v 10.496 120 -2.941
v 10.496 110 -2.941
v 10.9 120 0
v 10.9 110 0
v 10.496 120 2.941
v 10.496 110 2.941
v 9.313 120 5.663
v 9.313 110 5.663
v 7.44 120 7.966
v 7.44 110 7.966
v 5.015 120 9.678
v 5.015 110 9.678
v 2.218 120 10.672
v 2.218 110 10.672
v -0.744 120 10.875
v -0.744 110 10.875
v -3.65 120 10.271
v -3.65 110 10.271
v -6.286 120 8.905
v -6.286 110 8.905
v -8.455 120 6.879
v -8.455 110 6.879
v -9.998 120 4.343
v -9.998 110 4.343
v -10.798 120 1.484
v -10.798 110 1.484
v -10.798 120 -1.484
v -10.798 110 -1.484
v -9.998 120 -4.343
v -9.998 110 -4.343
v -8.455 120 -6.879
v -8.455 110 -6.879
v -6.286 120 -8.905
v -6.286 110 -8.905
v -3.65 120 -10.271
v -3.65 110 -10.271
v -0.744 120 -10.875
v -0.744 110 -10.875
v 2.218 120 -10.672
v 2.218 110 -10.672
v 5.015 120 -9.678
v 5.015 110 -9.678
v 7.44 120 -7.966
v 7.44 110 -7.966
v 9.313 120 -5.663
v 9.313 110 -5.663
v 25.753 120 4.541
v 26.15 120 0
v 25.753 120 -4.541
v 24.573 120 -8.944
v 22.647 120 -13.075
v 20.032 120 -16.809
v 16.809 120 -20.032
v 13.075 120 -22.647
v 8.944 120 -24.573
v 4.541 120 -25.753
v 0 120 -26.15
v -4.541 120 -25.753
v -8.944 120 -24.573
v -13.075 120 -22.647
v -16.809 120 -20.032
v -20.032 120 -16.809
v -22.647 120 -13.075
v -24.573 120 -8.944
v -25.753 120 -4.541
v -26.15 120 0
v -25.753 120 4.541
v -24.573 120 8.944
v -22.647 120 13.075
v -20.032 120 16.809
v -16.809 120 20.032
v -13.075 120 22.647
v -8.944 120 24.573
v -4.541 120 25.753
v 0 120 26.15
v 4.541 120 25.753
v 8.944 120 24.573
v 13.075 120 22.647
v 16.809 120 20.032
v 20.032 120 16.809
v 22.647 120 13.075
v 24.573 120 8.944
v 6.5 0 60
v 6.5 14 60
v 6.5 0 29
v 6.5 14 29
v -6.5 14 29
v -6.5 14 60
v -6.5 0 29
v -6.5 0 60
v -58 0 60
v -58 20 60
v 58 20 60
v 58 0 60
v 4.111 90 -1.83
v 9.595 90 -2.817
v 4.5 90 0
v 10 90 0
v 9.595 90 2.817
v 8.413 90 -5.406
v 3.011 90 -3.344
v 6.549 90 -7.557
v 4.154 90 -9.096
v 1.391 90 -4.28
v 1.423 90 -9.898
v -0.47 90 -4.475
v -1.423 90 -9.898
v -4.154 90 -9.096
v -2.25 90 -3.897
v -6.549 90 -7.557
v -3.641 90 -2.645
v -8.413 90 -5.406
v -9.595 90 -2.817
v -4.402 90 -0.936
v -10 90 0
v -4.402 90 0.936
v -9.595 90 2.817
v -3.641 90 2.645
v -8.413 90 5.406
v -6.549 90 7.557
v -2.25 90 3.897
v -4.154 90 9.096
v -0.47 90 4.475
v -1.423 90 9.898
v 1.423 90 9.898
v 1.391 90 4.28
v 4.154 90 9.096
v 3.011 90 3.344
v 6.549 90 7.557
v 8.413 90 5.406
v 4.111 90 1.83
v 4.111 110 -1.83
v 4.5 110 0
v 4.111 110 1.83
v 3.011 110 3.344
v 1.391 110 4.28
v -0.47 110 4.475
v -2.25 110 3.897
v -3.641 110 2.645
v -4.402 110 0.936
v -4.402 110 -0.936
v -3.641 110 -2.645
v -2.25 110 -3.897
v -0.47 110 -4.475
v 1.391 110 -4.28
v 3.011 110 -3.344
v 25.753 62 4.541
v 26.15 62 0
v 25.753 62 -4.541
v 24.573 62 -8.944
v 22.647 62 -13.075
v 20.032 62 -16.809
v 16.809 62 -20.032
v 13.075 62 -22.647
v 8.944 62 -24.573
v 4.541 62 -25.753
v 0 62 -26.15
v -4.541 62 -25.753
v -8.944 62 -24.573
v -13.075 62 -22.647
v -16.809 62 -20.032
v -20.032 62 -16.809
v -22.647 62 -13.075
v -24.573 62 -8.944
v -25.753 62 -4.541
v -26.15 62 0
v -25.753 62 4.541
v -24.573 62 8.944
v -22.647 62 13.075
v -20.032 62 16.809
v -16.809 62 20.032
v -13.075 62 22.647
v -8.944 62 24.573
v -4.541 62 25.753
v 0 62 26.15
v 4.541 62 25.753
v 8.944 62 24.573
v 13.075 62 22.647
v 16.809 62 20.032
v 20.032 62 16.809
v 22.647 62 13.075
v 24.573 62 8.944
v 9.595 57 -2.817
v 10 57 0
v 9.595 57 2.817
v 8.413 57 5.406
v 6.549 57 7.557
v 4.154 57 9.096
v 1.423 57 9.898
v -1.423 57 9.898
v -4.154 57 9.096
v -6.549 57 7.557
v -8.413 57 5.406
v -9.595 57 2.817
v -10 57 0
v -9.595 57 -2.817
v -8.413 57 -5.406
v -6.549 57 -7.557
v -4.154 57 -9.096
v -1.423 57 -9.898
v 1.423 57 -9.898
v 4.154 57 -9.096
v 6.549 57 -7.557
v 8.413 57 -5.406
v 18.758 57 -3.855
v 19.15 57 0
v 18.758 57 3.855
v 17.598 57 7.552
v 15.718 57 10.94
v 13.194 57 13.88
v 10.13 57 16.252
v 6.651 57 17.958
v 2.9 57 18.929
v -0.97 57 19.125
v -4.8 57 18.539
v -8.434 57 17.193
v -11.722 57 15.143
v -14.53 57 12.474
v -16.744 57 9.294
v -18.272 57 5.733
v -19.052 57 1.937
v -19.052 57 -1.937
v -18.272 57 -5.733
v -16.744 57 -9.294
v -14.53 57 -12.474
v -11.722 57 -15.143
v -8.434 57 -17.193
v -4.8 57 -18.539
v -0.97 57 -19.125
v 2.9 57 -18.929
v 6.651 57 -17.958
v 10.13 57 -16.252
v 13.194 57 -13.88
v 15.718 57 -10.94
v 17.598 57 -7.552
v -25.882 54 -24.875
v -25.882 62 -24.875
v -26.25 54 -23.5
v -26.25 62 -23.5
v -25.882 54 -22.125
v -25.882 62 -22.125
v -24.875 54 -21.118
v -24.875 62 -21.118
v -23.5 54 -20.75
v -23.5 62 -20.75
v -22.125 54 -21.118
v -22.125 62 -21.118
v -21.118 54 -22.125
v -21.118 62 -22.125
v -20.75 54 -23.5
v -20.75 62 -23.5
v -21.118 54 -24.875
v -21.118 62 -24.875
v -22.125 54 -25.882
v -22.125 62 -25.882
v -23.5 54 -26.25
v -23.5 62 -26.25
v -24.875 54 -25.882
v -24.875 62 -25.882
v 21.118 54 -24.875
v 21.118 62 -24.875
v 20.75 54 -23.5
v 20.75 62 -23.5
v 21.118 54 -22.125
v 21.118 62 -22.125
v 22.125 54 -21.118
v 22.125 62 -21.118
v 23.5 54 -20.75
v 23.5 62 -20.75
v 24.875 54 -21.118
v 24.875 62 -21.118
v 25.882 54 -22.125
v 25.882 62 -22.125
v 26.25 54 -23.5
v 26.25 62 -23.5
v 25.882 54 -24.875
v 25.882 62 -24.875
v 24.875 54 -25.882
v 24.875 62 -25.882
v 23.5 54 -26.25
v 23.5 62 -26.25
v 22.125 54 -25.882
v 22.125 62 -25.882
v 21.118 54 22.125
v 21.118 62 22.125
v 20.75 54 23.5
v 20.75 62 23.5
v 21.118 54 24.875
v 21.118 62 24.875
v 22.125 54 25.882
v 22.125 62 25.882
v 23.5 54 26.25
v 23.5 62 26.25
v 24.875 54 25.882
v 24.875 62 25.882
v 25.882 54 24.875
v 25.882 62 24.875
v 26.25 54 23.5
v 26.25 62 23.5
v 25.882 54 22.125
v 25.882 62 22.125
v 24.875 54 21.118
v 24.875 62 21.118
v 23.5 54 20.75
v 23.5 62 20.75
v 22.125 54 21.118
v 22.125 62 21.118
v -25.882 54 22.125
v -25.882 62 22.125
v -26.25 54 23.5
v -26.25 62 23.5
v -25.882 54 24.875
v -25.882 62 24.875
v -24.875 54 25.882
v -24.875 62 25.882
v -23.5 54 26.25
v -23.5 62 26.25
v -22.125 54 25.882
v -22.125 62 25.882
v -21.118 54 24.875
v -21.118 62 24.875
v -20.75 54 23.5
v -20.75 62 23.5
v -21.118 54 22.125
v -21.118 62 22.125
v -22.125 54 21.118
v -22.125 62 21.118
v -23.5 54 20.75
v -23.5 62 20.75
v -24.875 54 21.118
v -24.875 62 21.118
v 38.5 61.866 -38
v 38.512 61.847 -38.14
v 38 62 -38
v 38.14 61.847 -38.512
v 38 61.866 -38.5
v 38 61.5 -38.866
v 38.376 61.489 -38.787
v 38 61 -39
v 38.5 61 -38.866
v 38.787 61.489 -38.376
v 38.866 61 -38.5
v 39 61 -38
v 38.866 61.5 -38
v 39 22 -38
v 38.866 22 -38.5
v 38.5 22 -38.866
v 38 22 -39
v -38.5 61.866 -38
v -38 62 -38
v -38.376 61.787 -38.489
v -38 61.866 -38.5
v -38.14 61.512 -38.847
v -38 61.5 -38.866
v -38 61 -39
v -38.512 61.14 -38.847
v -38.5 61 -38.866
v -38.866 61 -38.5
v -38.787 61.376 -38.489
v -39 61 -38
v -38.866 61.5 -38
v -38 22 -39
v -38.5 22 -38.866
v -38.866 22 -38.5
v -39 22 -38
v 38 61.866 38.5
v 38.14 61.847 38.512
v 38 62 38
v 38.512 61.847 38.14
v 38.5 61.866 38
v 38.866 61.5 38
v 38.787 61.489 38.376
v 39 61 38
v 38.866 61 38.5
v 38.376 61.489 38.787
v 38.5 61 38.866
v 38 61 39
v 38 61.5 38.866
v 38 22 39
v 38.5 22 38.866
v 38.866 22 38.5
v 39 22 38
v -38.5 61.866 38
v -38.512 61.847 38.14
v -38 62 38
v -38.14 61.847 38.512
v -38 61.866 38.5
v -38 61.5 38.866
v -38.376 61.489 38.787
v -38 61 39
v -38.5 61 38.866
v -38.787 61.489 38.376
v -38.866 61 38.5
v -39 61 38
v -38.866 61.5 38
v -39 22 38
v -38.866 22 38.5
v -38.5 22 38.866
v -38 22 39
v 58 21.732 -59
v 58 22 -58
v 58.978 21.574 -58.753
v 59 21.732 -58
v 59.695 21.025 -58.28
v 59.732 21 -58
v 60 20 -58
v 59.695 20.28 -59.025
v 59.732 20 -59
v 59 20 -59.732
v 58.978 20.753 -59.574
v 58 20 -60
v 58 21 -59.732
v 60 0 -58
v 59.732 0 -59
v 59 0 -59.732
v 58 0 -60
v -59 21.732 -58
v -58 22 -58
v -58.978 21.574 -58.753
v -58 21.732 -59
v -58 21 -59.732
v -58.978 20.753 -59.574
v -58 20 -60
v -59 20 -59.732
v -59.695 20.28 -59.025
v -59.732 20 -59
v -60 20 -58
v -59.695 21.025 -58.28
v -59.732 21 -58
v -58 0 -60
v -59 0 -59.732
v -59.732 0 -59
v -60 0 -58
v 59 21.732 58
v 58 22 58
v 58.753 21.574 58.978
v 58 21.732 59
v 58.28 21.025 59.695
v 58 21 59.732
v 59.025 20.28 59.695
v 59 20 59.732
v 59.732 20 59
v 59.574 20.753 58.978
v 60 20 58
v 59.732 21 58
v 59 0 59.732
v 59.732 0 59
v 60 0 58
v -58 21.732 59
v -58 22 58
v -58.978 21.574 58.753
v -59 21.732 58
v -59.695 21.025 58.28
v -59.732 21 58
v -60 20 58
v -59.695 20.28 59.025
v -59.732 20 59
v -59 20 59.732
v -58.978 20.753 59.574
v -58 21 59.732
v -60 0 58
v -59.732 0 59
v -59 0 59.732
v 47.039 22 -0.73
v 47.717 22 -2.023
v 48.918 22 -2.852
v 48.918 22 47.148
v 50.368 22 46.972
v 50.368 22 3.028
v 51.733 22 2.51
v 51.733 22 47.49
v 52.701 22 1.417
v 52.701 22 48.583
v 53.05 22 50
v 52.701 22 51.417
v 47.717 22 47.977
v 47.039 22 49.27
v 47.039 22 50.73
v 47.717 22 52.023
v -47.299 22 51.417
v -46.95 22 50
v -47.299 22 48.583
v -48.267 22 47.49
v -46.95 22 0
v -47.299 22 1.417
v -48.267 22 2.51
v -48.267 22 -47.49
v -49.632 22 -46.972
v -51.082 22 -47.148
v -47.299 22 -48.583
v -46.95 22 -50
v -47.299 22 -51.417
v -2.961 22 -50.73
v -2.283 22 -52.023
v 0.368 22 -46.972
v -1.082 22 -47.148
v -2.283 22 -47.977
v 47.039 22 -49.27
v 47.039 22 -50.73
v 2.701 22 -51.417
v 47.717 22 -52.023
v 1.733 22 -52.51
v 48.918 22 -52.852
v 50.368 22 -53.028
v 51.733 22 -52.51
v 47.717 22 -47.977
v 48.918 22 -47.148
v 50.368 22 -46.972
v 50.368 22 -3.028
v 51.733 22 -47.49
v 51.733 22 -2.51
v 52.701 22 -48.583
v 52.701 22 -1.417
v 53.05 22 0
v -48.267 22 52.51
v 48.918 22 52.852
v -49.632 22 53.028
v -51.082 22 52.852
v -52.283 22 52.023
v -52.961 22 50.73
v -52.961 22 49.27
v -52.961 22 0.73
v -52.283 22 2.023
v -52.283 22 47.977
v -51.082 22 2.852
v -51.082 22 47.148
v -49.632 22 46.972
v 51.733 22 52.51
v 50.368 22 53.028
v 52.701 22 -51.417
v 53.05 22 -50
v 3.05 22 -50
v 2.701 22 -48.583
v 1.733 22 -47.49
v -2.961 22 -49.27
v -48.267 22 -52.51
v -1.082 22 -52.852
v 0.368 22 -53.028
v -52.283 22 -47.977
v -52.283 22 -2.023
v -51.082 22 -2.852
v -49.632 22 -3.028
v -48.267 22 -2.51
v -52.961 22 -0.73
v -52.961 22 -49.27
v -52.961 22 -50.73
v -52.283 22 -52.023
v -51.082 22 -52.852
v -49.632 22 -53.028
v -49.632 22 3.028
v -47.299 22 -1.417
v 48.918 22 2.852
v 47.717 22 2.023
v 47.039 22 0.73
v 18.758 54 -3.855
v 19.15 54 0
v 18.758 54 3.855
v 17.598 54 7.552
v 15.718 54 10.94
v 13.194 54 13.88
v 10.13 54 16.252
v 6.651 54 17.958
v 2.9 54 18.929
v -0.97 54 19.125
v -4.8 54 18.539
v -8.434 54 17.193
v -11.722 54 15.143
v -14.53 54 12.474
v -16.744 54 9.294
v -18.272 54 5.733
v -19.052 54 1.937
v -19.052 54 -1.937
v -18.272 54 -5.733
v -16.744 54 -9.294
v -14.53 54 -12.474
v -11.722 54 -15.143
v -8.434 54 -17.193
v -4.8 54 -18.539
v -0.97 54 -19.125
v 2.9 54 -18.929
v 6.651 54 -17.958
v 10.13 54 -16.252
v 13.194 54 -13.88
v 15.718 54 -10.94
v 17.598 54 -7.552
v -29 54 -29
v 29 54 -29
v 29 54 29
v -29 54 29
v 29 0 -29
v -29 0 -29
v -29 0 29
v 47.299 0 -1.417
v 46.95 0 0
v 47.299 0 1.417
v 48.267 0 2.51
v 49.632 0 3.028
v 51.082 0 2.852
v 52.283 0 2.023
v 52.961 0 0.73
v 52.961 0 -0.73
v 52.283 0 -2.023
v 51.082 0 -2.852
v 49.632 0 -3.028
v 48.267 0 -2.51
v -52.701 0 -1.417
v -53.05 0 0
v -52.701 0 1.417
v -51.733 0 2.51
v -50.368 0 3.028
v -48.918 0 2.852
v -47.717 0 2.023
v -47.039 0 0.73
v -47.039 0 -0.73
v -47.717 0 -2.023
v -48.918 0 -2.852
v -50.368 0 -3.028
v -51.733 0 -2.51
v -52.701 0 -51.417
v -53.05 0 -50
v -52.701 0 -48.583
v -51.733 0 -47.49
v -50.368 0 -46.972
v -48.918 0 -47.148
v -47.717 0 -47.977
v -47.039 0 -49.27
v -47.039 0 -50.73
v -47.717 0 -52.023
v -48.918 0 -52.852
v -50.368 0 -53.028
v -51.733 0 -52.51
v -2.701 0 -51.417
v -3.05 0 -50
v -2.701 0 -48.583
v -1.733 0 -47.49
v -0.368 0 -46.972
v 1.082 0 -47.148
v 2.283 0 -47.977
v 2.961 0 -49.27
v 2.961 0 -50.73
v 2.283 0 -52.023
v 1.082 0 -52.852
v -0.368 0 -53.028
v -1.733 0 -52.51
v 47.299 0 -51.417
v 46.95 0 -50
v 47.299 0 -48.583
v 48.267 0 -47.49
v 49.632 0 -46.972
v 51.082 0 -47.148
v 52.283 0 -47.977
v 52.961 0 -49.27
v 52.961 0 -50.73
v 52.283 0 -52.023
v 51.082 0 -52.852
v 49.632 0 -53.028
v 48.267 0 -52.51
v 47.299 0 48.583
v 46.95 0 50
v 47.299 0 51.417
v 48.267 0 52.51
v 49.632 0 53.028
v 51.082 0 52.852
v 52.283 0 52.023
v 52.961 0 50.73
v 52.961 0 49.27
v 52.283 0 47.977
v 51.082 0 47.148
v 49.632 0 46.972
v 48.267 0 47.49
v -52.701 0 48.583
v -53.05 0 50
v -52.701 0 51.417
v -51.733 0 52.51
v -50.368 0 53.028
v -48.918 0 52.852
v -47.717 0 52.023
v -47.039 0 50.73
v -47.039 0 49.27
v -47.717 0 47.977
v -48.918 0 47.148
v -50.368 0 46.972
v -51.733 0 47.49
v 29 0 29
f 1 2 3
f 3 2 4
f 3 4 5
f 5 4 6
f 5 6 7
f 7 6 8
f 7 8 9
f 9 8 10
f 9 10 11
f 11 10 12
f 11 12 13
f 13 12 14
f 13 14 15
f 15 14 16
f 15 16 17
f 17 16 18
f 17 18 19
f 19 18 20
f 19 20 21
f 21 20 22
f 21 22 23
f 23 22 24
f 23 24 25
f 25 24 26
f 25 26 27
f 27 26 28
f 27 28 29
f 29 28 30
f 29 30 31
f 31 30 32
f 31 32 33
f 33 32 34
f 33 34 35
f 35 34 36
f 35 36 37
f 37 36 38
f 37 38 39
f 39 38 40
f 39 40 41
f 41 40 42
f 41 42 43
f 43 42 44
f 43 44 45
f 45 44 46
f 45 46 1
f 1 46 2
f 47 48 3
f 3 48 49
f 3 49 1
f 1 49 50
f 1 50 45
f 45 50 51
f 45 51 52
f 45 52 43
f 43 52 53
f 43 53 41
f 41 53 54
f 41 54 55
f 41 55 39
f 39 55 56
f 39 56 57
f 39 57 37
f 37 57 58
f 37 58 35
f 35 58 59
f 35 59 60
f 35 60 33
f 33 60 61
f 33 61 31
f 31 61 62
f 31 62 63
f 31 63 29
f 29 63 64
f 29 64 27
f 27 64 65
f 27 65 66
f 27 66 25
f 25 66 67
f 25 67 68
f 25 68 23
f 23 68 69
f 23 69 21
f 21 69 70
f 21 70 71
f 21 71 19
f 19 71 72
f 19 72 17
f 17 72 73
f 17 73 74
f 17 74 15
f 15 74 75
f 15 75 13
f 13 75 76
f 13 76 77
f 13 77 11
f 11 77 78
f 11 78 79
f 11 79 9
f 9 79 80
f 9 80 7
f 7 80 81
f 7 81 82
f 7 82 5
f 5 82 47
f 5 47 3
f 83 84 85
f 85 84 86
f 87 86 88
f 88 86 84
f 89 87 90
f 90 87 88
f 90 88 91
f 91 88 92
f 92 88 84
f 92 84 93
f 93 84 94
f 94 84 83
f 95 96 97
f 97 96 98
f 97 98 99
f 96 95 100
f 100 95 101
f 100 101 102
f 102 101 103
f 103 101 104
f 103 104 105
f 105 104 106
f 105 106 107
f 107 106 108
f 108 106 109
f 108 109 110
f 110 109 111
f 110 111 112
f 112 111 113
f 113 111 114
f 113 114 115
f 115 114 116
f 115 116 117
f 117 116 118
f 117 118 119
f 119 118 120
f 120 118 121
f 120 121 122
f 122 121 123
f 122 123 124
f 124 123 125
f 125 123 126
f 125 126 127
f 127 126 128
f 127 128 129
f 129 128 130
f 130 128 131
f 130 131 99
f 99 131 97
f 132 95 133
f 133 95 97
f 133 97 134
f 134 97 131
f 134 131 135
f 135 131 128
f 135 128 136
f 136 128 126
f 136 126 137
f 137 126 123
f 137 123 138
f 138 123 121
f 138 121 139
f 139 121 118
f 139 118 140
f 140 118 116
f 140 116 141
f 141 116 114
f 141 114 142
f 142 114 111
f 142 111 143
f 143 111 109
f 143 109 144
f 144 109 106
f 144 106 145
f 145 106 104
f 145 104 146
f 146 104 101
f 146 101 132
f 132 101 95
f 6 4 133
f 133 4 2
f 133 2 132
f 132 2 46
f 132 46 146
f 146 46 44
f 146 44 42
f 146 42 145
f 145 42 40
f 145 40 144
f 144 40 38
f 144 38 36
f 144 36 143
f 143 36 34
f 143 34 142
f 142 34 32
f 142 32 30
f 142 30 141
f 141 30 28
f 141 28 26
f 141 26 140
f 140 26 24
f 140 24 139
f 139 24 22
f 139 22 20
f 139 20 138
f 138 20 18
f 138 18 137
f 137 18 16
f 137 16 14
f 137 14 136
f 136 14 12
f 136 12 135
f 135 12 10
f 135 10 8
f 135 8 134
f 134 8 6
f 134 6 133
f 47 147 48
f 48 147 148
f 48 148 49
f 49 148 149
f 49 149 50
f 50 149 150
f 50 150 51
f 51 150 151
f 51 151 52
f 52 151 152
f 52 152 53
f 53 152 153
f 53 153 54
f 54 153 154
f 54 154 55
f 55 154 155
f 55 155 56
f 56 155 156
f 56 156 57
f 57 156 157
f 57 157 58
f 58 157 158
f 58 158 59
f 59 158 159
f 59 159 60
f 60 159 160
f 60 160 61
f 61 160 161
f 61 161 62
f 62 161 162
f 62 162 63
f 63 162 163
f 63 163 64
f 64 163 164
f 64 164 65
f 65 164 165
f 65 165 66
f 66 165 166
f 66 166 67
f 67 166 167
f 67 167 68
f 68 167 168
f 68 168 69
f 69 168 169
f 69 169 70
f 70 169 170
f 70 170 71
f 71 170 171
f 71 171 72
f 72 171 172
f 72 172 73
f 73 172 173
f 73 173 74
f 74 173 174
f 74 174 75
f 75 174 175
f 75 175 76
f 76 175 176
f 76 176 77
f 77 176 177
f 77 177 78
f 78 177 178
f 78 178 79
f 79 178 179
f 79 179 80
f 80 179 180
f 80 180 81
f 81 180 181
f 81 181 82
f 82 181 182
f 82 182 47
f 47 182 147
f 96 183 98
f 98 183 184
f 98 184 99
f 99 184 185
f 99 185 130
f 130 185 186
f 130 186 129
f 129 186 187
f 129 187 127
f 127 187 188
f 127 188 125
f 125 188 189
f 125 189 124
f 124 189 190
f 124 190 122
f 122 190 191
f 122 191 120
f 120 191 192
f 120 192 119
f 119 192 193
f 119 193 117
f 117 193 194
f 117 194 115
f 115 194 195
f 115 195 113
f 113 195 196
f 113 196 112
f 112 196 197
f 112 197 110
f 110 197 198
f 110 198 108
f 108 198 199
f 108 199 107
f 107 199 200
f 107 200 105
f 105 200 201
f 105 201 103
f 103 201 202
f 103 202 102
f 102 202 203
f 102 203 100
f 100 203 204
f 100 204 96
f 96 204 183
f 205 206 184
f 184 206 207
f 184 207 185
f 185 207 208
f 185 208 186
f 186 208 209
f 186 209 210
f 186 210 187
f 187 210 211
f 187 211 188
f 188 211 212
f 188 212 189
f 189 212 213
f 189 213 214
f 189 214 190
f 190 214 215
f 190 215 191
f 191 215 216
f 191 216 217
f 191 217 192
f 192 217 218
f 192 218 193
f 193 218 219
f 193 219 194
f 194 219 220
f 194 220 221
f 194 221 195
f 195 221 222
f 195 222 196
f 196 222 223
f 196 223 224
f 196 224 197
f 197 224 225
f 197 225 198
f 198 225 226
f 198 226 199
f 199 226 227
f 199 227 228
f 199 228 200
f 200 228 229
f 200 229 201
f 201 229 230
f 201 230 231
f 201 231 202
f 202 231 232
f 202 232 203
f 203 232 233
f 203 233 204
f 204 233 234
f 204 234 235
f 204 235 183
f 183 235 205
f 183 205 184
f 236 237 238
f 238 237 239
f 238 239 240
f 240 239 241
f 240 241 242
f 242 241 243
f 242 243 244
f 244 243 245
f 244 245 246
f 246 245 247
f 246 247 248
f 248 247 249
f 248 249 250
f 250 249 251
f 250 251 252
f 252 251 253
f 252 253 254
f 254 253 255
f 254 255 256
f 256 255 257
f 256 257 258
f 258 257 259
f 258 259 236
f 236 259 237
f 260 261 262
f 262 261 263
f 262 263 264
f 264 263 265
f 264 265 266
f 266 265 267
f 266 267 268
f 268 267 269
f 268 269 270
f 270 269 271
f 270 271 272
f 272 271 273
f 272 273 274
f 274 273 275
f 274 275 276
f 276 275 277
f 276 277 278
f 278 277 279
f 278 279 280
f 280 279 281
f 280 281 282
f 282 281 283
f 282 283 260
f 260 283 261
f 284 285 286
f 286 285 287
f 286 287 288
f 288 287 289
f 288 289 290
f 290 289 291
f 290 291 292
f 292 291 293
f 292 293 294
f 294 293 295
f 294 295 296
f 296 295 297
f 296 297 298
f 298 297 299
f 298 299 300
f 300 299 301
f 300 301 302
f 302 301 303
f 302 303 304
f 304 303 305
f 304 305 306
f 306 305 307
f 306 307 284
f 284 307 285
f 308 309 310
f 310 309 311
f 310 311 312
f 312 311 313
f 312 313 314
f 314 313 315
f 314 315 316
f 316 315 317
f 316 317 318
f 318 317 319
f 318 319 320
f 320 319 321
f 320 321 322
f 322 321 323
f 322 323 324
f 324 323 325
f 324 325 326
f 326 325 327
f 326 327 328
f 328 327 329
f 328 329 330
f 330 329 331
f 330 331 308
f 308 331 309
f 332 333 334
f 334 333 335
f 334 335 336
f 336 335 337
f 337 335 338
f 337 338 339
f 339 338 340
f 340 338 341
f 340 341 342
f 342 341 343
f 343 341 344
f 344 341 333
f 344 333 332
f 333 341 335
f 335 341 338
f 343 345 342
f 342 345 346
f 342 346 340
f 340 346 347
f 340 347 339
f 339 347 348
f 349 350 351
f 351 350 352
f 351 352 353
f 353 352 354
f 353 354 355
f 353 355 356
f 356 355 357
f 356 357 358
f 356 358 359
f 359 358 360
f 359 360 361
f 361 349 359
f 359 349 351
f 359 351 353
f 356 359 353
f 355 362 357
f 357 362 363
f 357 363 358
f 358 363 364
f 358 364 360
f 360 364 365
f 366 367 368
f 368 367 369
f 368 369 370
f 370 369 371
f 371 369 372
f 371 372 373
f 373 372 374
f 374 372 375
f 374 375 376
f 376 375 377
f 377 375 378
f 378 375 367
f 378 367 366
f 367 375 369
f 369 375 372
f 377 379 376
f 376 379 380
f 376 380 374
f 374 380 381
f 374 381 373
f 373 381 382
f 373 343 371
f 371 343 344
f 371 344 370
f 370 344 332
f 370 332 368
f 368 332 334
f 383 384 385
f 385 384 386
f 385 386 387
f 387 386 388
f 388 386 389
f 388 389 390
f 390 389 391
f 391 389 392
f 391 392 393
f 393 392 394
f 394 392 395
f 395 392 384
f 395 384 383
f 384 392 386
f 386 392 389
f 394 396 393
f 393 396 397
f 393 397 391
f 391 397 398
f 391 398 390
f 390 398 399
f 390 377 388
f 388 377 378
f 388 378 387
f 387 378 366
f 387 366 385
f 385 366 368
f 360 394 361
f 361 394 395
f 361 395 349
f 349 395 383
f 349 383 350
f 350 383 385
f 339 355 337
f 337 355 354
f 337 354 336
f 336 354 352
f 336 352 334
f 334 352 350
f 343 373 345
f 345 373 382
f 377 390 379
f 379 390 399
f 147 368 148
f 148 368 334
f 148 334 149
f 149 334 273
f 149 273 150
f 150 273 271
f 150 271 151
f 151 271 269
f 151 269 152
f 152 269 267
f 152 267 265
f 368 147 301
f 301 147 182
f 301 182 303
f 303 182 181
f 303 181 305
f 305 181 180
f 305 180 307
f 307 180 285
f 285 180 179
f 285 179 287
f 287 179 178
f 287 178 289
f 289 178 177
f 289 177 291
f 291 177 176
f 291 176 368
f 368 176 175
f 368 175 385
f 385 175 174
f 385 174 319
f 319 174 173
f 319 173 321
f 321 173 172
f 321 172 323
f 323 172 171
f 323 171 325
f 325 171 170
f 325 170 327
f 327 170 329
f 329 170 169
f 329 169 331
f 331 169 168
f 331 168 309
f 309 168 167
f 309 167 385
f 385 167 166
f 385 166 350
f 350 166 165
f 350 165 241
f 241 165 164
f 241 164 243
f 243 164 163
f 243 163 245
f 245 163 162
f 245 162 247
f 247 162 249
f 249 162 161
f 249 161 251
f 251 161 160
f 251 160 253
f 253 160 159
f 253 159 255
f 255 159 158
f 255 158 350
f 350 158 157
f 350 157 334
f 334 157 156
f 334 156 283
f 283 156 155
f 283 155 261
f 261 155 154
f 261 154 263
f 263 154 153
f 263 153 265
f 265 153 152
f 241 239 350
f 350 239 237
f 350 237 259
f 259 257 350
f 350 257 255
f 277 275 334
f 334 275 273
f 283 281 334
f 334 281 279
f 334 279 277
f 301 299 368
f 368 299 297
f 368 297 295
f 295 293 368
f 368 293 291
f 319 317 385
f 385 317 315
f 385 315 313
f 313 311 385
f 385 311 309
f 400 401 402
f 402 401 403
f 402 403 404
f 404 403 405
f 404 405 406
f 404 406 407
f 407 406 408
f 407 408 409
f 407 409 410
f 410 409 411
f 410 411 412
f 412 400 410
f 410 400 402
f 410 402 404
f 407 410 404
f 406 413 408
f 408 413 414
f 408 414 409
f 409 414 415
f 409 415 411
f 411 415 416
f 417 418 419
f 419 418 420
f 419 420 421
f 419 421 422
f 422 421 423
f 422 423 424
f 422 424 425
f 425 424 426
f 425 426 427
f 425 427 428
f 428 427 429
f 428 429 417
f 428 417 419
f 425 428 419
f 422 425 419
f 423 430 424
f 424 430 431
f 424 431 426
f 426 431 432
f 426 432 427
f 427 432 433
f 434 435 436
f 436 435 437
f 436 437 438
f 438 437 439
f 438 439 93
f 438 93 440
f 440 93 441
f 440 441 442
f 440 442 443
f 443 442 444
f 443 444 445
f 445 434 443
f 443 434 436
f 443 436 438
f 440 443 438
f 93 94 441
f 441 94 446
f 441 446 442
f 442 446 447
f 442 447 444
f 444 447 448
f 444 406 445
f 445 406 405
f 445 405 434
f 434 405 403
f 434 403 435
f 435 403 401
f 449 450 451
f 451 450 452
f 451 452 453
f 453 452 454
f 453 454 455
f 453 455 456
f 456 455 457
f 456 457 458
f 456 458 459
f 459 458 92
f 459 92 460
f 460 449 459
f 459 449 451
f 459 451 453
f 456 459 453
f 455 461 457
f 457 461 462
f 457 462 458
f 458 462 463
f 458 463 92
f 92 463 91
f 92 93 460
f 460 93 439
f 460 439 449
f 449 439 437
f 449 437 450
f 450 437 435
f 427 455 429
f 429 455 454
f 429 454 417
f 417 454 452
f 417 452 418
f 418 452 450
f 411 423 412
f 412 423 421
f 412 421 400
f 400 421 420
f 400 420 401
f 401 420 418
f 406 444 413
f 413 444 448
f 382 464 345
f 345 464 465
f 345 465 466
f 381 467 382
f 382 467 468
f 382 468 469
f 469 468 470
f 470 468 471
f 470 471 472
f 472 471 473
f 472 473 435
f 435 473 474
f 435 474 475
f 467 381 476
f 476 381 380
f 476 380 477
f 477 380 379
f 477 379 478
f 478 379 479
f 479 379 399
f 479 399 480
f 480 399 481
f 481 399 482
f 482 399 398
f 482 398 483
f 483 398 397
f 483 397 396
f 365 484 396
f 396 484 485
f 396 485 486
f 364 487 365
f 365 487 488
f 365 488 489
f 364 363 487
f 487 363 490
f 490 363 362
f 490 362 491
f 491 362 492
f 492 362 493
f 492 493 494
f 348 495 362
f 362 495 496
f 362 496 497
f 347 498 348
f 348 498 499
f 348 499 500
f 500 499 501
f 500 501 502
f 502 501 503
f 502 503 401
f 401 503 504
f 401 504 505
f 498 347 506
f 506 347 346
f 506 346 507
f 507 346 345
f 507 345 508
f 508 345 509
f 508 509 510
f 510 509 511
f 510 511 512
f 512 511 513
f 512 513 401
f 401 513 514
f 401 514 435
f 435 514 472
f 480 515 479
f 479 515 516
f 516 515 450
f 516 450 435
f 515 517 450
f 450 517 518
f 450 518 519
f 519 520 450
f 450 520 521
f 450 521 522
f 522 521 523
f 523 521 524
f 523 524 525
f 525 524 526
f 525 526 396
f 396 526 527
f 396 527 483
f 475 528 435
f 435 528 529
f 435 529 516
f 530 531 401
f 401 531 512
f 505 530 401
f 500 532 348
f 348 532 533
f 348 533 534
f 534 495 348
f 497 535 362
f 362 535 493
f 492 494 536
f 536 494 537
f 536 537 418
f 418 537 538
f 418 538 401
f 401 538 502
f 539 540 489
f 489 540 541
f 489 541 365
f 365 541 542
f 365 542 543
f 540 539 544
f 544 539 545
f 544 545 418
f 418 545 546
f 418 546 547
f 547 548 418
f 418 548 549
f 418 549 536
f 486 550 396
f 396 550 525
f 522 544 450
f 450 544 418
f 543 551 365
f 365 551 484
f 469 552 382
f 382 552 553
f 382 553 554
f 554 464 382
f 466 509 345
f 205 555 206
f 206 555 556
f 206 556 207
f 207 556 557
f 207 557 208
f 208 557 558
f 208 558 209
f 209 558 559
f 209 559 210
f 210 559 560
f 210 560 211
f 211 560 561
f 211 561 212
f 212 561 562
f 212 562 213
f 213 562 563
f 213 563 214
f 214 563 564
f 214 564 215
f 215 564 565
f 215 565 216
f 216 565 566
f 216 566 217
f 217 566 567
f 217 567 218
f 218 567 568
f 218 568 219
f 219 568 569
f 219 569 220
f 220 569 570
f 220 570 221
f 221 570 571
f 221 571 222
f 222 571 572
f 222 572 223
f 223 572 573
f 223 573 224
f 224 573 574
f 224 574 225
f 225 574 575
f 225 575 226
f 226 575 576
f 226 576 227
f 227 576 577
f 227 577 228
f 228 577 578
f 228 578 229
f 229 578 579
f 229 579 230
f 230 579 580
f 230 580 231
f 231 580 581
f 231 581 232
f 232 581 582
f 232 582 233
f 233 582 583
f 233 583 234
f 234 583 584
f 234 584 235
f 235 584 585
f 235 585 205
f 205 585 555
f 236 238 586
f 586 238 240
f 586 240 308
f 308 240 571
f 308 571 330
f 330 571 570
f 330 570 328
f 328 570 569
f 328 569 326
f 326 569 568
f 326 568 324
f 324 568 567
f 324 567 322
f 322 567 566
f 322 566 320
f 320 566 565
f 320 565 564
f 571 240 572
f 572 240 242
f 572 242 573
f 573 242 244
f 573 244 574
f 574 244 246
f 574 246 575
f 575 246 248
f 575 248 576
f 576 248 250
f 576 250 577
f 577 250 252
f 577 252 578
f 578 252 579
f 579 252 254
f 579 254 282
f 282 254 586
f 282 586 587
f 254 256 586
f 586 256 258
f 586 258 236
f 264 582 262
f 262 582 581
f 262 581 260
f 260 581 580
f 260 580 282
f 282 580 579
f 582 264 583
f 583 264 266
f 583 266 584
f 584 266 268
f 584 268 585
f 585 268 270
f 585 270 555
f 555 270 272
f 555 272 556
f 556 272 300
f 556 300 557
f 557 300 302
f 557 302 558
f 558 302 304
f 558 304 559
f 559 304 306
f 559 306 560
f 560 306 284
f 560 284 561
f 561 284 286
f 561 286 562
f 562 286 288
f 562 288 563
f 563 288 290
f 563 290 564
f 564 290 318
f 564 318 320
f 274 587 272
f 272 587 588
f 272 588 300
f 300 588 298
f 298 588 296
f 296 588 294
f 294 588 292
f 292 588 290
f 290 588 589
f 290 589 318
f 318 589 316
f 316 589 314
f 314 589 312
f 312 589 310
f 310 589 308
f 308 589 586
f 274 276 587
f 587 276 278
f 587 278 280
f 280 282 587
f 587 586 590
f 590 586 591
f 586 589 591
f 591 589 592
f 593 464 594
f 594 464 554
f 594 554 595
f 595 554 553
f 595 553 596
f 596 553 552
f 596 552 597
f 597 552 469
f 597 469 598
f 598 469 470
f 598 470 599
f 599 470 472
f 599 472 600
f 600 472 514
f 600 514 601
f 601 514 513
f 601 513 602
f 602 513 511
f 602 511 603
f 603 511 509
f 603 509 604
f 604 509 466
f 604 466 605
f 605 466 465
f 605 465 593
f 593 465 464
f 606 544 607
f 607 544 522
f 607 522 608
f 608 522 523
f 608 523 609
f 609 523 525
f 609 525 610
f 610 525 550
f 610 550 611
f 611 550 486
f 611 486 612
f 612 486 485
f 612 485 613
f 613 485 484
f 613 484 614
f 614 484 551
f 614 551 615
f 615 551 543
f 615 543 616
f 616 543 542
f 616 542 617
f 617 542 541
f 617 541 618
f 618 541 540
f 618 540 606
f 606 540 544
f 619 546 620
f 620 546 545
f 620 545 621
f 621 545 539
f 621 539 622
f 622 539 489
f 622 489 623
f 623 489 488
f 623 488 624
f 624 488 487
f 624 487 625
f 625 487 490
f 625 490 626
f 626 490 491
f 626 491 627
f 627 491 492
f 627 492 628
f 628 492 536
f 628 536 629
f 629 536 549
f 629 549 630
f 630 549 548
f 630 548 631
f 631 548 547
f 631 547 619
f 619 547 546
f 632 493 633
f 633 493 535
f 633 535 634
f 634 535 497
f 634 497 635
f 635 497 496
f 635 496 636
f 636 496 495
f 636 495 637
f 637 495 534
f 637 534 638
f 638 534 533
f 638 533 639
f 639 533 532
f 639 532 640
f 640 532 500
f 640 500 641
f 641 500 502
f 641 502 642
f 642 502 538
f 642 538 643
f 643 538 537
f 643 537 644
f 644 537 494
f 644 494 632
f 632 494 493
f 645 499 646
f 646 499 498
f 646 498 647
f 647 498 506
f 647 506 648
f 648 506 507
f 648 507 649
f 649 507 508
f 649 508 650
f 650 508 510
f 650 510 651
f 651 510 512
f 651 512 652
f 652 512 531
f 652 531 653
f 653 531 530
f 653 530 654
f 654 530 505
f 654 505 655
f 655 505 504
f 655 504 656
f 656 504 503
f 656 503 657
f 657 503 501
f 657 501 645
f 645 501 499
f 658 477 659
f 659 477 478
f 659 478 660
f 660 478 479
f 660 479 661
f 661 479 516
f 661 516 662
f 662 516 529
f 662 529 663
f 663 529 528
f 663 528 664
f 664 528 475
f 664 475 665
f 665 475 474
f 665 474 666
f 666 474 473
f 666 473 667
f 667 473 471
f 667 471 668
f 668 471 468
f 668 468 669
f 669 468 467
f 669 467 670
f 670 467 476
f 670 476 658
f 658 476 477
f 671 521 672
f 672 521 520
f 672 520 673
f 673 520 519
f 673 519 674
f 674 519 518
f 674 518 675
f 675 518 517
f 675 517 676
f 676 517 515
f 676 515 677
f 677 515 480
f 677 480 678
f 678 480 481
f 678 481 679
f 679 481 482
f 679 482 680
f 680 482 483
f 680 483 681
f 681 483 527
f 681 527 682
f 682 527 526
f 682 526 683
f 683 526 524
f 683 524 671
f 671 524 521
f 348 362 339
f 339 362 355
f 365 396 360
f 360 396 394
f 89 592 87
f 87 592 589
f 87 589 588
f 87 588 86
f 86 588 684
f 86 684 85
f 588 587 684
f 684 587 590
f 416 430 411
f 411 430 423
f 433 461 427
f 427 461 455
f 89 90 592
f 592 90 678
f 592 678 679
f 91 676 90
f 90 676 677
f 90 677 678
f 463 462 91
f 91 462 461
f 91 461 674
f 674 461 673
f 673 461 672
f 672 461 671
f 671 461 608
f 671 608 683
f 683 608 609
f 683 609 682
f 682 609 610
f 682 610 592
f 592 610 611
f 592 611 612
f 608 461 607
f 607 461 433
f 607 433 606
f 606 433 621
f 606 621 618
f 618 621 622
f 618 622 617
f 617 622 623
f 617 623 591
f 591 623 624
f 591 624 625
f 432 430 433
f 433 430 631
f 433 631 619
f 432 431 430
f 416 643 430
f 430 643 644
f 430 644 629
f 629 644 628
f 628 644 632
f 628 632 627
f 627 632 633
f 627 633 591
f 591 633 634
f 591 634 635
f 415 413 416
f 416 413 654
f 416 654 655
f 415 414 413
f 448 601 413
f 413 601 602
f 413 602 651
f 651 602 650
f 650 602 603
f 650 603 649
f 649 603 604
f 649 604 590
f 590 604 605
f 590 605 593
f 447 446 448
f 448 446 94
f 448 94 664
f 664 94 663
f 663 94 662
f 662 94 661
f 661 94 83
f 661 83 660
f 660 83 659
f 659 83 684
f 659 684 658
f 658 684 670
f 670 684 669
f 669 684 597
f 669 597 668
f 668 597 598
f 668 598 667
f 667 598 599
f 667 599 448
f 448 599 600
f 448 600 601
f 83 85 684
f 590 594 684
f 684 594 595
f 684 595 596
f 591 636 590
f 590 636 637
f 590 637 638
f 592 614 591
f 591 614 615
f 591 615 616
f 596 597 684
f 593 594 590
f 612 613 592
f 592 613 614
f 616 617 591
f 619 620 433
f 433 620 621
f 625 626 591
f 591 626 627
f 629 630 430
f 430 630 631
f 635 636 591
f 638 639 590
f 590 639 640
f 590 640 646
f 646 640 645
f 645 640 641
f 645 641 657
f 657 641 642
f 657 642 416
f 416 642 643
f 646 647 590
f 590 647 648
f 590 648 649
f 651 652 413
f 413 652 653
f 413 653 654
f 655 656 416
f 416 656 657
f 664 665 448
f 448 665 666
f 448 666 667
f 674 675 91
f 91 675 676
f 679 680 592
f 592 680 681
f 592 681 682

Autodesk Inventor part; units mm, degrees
ref_plane "YZ Plane" through (0, 0, 0) normal (1, 0, 0) x (0, 1, 0)
ref_plane "XY Plane" through (0, 0, 0) normal (0, 0, 1) x (1, 0, 0)
sketch "Sketch1" plane through (0, 0, 0) normal (0, 1, 0) x (-1, 0, 0)
  line L0 (-60, -60) -> (60, -60)
  line L1 (60, -60) -> (60, 60)
  line L2 (60, 60) -> (-60, 60)
  line L3 (-60, 60) -> (-60, -60)
  line L4 (-60, -60) -> (60, 60) construction
  line L5 (60, -60) -> (-60, 60) construction
  line L6 (-29, -29) -> (29, 29) construction
  line L7 (28, -28) -> (-28, 28) construction
  line L8 (-36.5, -36.5) -> (36.5, 36.5) construction
  line L9 (36.5, -36.5) -> (-36.5, 36.5) construction
  line L10 (-39, -39) -> (39, 39) construction
  line L11 (33.9, -33.9) -> (-33.9, 33.9) construction
  line L12 (-24.8, -24.8) -> (24.8, 24.8) construction
  line L13 (39.8, -39.8) -> (-39.8, 39.8) construction
  line L14 (-39, -39) -> (39, -39)
  line L15 (39, -39) -> (39, 39)
  line L16 (39, 39) -> (-39, 39)
  line L17 (-39, 39) -> (-39, -39)
  line L18 (-39, -39) -> (39, 39) construction
  line L19 (39, -39) -> (-39, 39) construction
  line L20 (-29, -29) -> (29, -29)
  line L21 (29, -29) -> (29, 29)
  line L22 (29, 29) -> (-29, 29)
  line L23 (-29, 29) -> (-29, -29)
  line L24 (-29, -29) -> (29, 29) construction
  line L25 (29, -29) -> (-29, 29) construction
  point P0 (0, 0)
  dimension "d0" = 120
  dimension "d1" = 120
  dimension "d13" = 78
  dimension "d14" = 78
  dimension "Largo_PaP" = 58
  dimension "Ancho_PaP" = 58
extrude "Extrusion1" add sketch "Sketch1" along normal blind 22 contours L3 L2 L1 L0
extrude "Extrusion2" add sketch "Sketch1" along normal blind 62 contours L17 L16 L15 L14
sketch "Sketch2" plane through (0, 22, 0) normal (0, 1, 0) x (1, 0, 0)
  line L0 (-60, 60) -> (-60, -60) projected
  line L1 (60, -60) -> (60, 60) projected
  line L2 (-60, -60) -> (60, -60) projected
  line L3 (60, 60) -> (-60, 60) projected
  line L4 (50, 50) -> (-50, 50)
  line L5 (-50, 50) -> (-50, -50)
  line L6 (-50, -50) -> (50, -50)
  line L7 (50, -50) -> (50, 50)
  line L8 (50, 50) -> (-50, -50) construction
  line L9 (-50, 50) -> (50, -50) construction
  point P0 (50, 0)
  point P1 (0, 50)
  point P2 (-50, 0)
  dimension "d82" = 100
  dimension "d83" = 100
hole "Hole1" at (-50, 22, 50) at (50, 22, 50) at (50, 22, -50) at (0, 22, -50) at (-50, 22, -50) at (-50, 22, 0) at (50, 22, 0) direction (0, -1, 0) diameter 6.1 end through all
sketch "Sketch3" plane through (0, 62, 0) normal (0, 1, 0) x (1, 0, 0)
  line L0 (29, -29) -> (-29, -29) projected
  line L1 (29, 29) -> (-29, 29)
  line L2 (-29, 29) -> (-29, -29)
  line L3 (-29, -29) -> (29, -29)
  line L4 (29, -29) -> (29, 29)
  line L5 (29, 29) -> (-29, -29) construction
  line L6 (-29, 29) -> (29, -29) construction
  line L7 (14, -14) -> (-14, 14) construction
  line L8 (-14, -14) -> (14, 14) construction
  line L9 (19, -19) -> (-19, 19) construction
  line L10 (-19, -19) -> (19, 19) construction
  circle A0 centre (0, 0) radius 19.15
  dimension "d56" = 38.3
extrude "Extrusion3" add sketch "Sketch3" against normal blind 8
fillet "Fillet1" radius 2 8 edges at (0, 22, 60) (-60, 22, 0) (60, 22, 0) (0, 22, -60) (60, 11, 60) (-60, 11, 60) (60, 11, -60) (-60, 11, -60)
fillet "Fillet2" radius 1 8 edges at (0, 62, 39) (39, 62, 0) (0, 62, -39) (-39, 62, 0) (-39, 42, -39) (39, 42, -39) (-39, 42, 39) (39, 42, 39)
sketch "Sketch4" plane through (0, 62, 0) normal (0, 1, 0) x (1, 0, 0)
  line L0 (39, -38) -> (39, 38) projected
  line L1 (-38, -39) -> (38, -39) projected
  line L2 (0, -10.7148) -> (0, 11.656) construction
  line L3 (7.4793, 0) -> (-11.1938, 0) construction
  line L4 (28, 28) -> (-28, 28)
  line L5 (-28, 28) -> (-28, -28)
  line L6 (-28, -28) -> (28, -28)
  line L7 (28, -28) -> (28, 28)
  line L8 (28, 28) -> (-28, -28) construction
  line L9 (-28, 28) -> (28, -28) construction
  point P0 (0, 0)
  point P1 (23.5, -23.5)
  point P2 (-23.5, -23.5)
  point P3 (23.5, 23.5)
  point P4 (-23.5, 23.5)
  dimension "d53" = 56
  dimension "d54" = 56
  dimension "d57" = 47
  dimension "d58" = 47
hole "Hole2" at (-23.5, 62, 23.5) at (23.5, 62, 23.5) at (23.5, 62, -23.5) at (-23.5, 62, -23.5) direction (0, -1, 0) diameter 5.5 end through all
sketch "Sketch6" plane through (0, 62, 0) normal (0, 1, 0) x (1, 0, 0)
  circle A0 centre (0, 0) radius 19.15
  circle A1 centre (0, 0) radius 10
  dimension "d59" = 20
  dimension "d60" = 38.3
extrude "Extrusion4" add sketch "Sketch6" against normal blind 5
sketch "Sketch12" plane through (0, 62, 0) normal (0, 1, 0) x (1, 0, 0)
  circle A0 centre (0, 0) radius 26.15
  circle A1 centre (0, 0) radius 10
  dimension "d85" = 52.3
extrude "Extrusion9" add sketch "Sketch12" along normal blind 28
sketch "Sketch13" plane through (0, 90, 0) normal (0, 1, 0) x (1, 0, 0)
  circle A0 centre (0, 0) radius 4.5
  circle A1 centre (0, 0) radius 10 projected
  circle A2 centre (0, 0) radius 26.15
  dimension "d88" = 9
extrude "Extrusion10" add sketch "Sketch13" along normal blind 20 contours A1 | A2
sketch "Sketch9" plane through (-58, 0, 60) normal (0, 0, 1) x (1, 0, 0)
  line L0 (0, 0) -> (0, 20) construction
  line L1 (0, 0) -> (116, 0) construction
  line L2 (0, 0) -> (116, 0) construction
  line L3 (64.5, -14) -> (51.5, -14)
  line L4 (51.5, -14) -> (51.5, 14)
  line L5 (51.5, 14) -> (64.5, 14)
  line L6 (64.5, 14) -> (64.5, -14)
  line L7 (64.5, -14) -> (51.5, 14) construction
  line L8 (51.5, -14) -> (64.5, 14) construction
  point P0 (58, 0)
  dimension "d77" = 13
  dimension "d78" = 28
extrude "Extrusion8" cut sketch "Sketch9" against normal up to surface (31 mm away)
sketch "Sketch14" plane through (0, 110, 0) normal (0, 1, 0) x (1, 0, 0)
  circle A0 centre (0, 0) radius 10.9
  circle A1 centre (0, 0) radius 26.15
  dimension "d91" = 21.8
extrude "Extrusion11" add sketch "Sketch14" along normal blind 10
ref_plane "Work Plane3" through (0, 81.25, 0) normal (0, 1, 0) x (-1, 0, 0)
sketch "Sketch15" plane through (0, 120, 0) normal (0, 1, 0) x (1, 0, 0)
  point P0 (0, 0)
equation "\"Largo_PaP\" = Ancho_PaP"
properties part number "Eslabón1"
